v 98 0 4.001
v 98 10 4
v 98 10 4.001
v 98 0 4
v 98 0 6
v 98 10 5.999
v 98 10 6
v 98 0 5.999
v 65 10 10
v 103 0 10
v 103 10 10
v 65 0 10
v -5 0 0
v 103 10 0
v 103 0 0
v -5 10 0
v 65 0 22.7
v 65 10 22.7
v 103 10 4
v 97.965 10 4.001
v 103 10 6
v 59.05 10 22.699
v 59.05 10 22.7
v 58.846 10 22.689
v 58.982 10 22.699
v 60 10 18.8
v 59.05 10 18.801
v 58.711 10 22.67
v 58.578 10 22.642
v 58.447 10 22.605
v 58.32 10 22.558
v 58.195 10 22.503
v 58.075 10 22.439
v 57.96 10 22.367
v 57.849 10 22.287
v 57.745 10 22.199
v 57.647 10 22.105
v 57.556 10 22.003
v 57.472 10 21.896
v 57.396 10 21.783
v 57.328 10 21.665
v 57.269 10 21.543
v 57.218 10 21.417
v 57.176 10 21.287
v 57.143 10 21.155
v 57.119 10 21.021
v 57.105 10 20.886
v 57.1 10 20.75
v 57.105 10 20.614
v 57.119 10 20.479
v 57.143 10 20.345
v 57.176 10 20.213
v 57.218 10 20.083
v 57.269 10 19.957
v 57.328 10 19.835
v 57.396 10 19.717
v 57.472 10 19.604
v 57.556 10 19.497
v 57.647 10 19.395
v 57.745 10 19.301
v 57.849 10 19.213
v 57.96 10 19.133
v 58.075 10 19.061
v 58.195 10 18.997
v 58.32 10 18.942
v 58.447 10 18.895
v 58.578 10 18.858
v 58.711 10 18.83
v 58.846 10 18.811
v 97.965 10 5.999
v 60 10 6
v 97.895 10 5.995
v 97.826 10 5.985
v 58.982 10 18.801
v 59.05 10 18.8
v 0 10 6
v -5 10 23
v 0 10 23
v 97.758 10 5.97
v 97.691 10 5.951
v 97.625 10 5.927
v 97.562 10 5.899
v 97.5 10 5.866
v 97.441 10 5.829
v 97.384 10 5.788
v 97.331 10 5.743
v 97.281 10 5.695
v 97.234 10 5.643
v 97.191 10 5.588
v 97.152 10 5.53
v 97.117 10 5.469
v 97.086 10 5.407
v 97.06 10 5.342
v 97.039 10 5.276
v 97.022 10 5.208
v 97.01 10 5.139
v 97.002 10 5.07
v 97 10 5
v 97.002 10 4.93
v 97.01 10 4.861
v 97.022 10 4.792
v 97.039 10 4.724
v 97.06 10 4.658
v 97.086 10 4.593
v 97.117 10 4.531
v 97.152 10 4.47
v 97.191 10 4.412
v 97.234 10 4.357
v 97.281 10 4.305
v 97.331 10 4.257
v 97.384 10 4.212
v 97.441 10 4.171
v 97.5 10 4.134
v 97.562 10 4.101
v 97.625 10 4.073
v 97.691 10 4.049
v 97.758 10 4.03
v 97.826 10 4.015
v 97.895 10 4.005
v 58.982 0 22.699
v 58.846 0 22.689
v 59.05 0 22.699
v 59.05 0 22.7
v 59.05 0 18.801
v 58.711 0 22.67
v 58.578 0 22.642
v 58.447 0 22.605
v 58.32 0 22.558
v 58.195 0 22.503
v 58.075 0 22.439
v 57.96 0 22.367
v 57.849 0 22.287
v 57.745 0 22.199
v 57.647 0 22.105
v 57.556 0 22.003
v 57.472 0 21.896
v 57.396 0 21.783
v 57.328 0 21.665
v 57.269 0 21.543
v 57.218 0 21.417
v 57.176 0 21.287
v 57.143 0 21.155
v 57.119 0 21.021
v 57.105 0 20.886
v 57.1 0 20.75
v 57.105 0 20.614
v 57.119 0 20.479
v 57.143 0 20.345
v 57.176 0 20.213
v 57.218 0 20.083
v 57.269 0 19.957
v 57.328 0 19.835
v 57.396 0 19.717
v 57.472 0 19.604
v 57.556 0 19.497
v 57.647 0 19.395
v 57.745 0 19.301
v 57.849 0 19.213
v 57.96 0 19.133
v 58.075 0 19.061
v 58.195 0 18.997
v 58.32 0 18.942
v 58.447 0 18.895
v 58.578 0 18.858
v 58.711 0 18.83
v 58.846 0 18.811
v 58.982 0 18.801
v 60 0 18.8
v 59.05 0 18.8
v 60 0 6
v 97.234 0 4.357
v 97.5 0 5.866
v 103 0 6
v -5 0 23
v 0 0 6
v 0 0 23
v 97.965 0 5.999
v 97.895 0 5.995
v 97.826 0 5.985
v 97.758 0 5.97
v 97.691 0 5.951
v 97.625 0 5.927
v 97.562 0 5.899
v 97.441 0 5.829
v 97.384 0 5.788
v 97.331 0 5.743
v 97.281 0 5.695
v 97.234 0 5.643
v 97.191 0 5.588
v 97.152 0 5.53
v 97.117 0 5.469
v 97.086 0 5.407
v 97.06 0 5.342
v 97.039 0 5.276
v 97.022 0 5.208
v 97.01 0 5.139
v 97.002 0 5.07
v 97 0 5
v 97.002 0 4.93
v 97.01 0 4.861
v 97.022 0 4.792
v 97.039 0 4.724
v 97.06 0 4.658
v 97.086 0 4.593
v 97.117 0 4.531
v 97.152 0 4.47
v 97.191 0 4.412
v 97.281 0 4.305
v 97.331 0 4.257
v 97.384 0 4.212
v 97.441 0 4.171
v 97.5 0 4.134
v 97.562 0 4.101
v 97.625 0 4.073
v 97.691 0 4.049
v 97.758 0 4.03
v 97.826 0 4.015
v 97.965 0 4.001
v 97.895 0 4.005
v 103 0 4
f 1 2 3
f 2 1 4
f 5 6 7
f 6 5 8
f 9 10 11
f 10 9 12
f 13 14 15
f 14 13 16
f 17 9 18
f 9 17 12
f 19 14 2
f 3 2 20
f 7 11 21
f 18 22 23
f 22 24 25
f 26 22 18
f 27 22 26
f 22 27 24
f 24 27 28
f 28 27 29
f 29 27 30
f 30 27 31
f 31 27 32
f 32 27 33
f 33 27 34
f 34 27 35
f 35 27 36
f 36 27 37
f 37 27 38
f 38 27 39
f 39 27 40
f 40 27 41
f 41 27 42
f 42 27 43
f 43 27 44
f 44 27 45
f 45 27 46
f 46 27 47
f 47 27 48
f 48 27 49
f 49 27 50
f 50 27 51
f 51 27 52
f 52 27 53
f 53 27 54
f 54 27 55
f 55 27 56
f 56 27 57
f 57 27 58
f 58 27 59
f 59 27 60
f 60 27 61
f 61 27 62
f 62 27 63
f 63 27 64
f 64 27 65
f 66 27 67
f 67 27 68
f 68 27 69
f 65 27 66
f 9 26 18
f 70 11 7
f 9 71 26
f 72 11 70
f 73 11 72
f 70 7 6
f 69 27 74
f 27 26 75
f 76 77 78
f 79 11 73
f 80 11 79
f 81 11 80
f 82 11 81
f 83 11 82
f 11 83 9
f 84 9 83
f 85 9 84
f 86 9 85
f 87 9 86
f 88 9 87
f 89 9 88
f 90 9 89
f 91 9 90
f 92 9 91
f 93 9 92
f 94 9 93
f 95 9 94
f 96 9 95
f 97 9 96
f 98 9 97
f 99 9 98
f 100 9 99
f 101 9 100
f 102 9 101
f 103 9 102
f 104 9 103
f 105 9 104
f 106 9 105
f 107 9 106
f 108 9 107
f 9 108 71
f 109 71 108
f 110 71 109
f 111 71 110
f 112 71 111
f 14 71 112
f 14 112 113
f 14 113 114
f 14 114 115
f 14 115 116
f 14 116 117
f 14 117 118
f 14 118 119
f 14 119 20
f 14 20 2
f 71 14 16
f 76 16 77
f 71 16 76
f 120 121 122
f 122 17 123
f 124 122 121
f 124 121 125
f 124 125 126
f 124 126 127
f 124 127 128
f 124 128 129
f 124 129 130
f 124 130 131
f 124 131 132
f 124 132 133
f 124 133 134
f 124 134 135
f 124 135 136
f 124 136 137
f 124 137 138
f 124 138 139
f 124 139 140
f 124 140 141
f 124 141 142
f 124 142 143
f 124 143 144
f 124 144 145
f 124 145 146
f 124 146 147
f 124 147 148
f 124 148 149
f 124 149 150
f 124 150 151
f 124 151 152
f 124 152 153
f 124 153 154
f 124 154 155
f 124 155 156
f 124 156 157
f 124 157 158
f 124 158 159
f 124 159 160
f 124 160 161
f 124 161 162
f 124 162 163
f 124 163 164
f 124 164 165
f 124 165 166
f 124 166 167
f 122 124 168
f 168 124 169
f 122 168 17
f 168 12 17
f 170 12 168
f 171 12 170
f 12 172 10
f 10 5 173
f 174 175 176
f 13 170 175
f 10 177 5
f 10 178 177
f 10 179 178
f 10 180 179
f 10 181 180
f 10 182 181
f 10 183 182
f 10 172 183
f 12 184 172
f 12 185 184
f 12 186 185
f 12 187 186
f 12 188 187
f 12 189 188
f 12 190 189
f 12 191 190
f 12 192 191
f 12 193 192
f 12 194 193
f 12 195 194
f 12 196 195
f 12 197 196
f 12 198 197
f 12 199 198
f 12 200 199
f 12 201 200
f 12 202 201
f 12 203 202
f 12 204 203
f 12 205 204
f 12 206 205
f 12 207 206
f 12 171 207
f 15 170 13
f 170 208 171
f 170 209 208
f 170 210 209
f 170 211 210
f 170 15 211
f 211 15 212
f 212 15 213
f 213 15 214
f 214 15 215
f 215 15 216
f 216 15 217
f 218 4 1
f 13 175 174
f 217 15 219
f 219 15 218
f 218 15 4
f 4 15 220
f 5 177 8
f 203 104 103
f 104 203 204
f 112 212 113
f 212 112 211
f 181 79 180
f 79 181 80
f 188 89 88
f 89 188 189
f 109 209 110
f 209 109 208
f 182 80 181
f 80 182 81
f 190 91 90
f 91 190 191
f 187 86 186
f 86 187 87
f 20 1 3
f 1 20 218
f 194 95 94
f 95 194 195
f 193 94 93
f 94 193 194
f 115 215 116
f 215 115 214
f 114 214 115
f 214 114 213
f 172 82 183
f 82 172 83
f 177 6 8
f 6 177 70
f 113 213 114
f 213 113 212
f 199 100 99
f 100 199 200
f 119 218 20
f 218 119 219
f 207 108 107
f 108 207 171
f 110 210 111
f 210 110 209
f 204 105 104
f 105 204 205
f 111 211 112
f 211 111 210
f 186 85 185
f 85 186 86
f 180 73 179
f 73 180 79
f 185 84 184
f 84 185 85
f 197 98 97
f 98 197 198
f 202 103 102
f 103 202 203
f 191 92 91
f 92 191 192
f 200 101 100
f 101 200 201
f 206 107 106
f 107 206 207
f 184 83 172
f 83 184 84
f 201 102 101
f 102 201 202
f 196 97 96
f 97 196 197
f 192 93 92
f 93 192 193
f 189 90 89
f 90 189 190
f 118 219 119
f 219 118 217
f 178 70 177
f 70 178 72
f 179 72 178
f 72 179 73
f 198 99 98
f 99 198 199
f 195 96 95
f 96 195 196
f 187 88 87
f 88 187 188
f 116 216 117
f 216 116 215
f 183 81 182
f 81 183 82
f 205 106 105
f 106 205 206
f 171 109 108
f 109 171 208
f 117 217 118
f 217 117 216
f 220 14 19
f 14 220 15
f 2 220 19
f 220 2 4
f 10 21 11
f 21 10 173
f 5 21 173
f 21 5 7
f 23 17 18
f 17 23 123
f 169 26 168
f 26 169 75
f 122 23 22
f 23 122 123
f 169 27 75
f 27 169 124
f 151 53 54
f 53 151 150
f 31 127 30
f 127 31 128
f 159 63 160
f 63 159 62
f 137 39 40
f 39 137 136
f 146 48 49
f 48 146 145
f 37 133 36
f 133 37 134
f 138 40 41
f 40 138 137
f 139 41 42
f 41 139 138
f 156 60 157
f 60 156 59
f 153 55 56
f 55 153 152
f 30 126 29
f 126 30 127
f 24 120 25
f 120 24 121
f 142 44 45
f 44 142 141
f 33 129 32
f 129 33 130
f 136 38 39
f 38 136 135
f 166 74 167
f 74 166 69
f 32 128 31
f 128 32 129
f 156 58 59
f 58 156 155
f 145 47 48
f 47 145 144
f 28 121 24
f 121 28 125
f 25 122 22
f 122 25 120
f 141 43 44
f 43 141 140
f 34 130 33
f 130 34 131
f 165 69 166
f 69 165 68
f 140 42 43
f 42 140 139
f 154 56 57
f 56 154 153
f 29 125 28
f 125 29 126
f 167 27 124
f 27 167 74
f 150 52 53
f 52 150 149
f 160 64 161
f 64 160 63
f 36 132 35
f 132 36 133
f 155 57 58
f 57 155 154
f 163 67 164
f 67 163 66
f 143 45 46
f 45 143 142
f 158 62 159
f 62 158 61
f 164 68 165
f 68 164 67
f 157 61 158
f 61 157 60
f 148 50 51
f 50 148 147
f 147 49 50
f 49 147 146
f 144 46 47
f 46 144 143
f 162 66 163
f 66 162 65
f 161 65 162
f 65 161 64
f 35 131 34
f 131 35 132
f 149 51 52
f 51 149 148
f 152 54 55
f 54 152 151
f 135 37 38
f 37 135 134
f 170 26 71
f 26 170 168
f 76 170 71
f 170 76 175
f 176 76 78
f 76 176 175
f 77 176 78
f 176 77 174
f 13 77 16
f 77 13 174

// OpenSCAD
spacerThickness = 10;
frontSpacerHeight = 10;

module easel_Spacer(spacerThickness, frontSpacerHeight) {
    module frontSpacerBase (width, height, offsetFromBackStopper) {
        notchRadius = 1;
        notchDiameter = notchRadius * 2;
        notchCenterDistanceFromBottom = 4; // this fits underneath the easel
        legLength = 5; // length of legs under and over the easel surface
        $fn = 90;
        
        translate([offsetFromBackStopper, 0, 0]) {
            color("LightSkyBlue")
            difference() {
                cube([width, spacerThickness, height]);
                rotate([90, 0, 0]) {
                    translate([width, notchCenterDistanceFromBottom + notchRadius, -spacerThickness]) {
                        cylinder(h=spacerThickness, r=notchRadius, center=false);
                    }
                }
            }

            // legs
            color("Orange")
            translate([width, 0, 0]) {
                cube([legLength, spacerThickness, notchCenterDistanceFromBottom]);
            }
            translate([width, 0, notchCenterDistanceFromBottom + notchDiameter]) {
                cube([legLength, spacerThickness, height - notchCenterDistanceFromBottom - notchDiameter]);
            }
        }
    }
    
    module backSpacerBase(width, height) {
        color("gold")
        cube([width, spacerThickness, height]);
    }
    
    module frontStopper(width, height, frontstopperDistanceFromBackStopper) {
        noseWidth = 3.45;
        noseHeight = 3.9;
        noseOffset = 2.5;
        
        translate([frontstopperDistanceFromBackStopper, 0, 0]) {
            color("red")
            cube([width, spacerThickness, height + noseHeight]);

            union() {
                translate([-noseWidth + noseOffset, 0, height]) {
                    color("blue")
                    cube([noseWidth, spacerThickness, noseHeight]);
                }
                
                $fn = 90; // make it 90 vertices
                radius = (noseHeight / 2);
                rotate([90, 0, 0]) {
                    translate([-noseWidth + noseOffset, height + noseHeight - radius, -spacerThickness]) {
                        color("orange")
                        cylinder(h=spacerThickness, r=radius, center=false);
                    }
                }
            }
        }
    }

    module backStopper(width, height) {
        color("Purple")
        
        translate([-width, 0, 0]) {
            cube([width, spacerThickness, height]);
        }
    }

    // put everything together
    union() {
        wholeSpacerLength = 88; // that's the optimal length. Don't change
        backSpacerHeight = 6.0; // height of plotter. Don't change

        frontStopperWidth = 5;
        frontStopperHeight = 18.8;
        backStopperWidth = 5;
        backStopperHeight = 23;
        frontstopperDistanceFromBackStopper = 60; // this is the width of the plotter

        backSpacerBase(frontstopperDistanceFromBackStopper, backSpacerHeight);
        frontSpacerBase(wholeSpacerLength - frontstopperDistanceFromBackStopper + frontStopperWidth, frontSpacerHeight, frontstopperDistanceFromBackStopper + frontStopperWidth);
        backStopper(backStopperWidth, backStopperHeight);
        frontStopper(frontStopperWidth, frontStopperHeight, frontstopperDistanceFromBackStopper);
    }
}

easel_Spacer(spacerThickness, frontSpacerHeight);
